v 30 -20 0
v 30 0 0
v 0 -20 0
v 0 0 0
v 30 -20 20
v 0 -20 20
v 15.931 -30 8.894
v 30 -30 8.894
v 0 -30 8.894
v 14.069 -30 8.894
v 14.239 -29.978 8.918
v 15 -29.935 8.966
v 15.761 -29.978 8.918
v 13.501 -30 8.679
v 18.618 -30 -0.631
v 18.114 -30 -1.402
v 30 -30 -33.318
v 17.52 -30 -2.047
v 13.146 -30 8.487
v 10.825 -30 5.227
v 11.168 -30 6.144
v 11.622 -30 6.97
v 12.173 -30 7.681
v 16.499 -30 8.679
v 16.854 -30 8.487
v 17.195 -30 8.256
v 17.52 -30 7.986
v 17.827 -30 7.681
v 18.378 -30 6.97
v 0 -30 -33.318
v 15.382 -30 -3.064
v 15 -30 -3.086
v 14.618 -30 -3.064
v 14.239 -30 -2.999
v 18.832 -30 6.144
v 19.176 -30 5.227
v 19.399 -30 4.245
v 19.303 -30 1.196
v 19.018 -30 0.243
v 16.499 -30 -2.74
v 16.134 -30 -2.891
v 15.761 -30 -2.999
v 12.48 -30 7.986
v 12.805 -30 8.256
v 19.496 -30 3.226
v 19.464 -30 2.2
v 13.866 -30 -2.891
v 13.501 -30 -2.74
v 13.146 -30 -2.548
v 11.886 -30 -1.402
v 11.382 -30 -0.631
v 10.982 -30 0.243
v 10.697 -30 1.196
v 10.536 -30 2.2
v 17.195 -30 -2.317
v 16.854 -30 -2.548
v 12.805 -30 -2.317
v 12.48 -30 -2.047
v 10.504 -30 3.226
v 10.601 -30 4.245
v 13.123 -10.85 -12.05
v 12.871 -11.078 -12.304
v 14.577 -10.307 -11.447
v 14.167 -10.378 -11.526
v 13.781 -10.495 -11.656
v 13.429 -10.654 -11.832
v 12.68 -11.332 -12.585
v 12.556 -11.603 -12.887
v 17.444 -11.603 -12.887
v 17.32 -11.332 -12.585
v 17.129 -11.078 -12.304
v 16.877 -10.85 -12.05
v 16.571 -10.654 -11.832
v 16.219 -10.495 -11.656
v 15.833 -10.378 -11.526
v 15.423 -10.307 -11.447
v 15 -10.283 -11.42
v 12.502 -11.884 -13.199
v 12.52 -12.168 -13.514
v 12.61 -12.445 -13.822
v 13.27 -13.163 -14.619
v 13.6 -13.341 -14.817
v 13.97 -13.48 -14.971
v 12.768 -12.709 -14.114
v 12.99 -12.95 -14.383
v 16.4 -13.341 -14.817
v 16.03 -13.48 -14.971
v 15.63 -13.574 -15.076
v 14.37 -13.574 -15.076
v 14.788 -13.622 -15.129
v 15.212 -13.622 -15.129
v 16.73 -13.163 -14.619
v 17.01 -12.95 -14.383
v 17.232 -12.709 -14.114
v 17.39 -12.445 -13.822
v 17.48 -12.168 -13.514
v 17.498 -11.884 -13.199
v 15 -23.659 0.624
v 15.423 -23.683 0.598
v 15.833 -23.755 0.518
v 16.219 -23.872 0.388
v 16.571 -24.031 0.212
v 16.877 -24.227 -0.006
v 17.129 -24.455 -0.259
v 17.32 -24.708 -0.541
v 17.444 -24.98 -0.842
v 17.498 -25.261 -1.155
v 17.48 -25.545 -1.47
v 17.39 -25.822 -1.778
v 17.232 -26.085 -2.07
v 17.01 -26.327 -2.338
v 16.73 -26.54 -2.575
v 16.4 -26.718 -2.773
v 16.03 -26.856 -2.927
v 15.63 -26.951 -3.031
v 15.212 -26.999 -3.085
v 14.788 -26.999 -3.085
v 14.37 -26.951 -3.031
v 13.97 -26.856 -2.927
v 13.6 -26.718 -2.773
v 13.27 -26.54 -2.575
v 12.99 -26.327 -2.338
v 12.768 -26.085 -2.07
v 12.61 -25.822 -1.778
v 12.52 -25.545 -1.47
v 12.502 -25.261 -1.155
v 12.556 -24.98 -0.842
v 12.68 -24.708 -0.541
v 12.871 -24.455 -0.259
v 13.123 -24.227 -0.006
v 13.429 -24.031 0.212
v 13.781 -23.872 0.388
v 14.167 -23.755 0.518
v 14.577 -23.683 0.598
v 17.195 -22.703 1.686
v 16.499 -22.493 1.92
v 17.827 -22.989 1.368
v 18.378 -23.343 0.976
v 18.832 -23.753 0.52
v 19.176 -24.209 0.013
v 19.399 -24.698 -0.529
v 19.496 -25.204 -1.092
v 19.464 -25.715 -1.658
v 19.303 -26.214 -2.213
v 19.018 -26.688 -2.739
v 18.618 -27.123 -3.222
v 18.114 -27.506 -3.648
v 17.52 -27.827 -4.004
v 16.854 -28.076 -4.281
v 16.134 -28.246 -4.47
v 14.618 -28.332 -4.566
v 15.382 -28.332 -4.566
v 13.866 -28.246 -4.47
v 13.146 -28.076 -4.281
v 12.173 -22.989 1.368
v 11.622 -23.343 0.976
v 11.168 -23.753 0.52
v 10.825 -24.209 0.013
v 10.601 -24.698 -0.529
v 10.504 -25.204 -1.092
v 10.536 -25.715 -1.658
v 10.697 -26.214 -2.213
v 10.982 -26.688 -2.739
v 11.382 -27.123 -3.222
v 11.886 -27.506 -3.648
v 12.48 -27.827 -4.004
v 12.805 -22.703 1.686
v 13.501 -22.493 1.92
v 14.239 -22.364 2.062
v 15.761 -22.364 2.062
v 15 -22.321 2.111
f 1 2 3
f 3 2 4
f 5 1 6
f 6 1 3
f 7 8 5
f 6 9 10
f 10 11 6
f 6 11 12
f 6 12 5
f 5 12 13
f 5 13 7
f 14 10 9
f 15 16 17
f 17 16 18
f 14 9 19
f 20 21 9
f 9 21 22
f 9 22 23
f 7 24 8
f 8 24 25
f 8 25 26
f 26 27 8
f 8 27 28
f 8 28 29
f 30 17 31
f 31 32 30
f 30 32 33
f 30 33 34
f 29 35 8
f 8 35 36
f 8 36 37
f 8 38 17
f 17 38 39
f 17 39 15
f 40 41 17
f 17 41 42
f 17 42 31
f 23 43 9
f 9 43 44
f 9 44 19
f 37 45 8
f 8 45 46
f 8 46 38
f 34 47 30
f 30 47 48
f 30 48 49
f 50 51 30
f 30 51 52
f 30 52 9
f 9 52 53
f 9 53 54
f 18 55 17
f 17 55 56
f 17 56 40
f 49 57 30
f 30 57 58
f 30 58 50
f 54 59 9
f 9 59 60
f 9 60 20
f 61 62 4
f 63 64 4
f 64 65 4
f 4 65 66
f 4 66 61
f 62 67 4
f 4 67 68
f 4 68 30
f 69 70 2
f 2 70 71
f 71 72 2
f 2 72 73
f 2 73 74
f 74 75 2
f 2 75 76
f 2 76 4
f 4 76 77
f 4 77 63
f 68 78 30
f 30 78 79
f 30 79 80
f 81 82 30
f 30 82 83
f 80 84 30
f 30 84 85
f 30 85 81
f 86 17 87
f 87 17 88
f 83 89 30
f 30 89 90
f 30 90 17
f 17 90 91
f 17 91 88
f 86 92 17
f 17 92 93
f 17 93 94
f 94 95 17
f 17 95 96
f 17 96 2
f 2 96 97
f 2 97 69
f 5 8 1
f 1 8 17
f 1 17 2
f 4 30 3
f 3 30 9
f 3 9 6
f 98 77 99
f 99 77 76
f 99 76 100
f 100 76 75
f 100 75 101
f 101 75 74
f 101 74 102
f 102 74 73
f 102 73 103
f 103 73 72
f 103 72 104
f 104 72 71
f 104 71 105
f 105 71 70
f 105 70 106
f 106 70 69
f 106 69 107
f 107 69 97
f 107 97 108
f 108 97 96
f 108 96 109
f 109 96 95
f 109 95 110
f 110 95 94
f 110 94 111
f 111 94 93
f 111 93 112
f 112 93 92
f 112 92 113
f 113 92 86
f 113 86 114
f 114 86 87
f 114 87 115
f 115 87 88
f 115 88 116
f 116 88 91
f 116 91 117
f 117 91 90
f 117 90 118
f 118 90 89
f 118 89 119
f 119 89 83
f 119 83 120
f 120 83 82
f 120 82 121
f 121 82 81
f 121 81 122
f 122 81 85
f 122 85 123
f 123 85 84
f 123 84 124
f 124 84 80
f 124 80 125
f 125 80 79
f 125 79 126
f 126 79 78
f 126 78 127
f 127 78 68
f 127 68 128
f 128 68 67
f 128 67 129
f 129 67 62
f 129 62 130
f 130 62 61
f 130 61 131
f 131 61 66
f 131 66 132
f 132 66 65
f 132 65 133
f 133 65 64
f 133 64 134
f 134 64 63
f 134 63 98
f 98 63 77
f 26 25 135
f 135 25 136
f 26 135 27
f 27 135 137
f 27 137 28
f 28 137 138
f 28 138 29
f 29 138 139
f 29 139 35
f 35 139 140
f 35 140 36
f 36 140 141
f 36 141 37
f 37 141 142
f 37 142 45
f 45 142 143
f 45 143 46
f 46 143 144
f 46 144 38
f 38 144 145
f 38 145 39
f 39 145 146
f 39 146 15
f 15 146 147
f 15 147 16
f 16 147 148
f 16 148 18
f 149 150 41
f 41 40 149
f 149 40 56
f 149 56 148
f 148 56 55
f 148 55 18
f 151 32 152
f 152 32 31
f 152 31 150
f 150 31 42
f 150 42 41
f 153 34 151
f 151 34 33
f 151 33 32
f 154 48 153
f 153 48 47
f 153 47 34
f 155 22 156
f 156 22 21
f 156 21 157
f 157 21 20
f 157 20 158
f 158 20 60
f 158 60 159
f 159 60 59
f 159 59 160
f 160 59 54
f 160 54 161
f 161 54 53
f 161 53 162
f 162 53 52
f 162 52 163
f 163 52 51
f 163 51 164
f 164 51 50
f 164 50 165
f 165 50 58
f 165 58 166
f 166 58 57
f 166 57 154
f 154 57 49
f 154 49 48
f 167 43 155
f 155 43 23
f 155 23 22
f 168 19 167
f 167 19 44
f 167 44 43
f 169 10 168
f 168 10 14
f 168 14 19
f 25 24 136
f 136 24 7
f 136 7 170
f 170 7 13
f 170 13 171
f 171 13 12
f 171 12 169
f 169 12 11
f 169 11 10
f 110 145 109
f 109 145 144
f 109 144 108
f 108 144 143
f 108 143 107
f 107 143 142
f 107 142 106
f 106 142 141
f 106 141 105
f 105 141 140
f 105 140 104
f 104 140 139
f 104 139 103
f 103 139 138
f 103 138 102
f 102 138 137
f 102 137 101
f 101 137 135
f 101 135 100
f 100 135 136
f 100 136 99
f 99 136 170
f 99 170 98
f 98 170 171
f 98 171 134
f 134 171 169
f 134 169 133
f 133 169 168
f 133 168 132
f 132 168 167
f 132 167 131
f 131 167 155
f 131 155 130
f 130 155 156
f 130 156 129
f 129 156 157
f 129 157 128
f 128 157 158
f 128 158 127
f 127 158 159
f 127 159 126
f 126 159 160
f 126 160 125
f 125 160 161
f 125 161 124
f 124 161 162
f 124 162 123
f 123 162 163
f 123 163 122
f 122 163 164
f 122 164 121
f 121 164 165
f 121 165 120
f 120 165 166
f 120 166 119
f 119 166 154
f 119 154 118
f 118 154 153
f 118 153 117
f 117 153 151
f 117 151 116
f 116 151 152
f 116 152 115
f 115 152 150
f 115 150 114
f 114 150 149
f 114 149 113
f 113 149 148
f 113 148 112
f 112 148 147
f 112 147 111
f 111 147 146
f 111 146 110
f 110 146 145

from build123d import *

# Parameters (mm, degrees)
BOSS_EXTRU_1_DEPTH      = 30
ESQUISSE2_R             = 2.5
ENL_V_MAT_EXTRU_1_DEPTH = 54.945473789
ESQUISSE4_R             = 4.5
ENL_V_MAT_EXTRU_2_DEPTH = 57.869272391


with BuildPart() as part:
    # Esquisse1 → Boss.-Extru.1 (new body)
    with BuildSketch(Plane(origin=(0, 0, 0), x_dir=(0, 0, -1), z_dir=(1, 0, 0))):
        Polygon((0, 0), (33.318375445, -30), (-8.893874852, -30), (-20, -20), (0, -20), align=None)
    extrude(amount=BOSS_EXTRU_1_DEPTH)

    # Esquisse2 → Enlèv. mat.-Extru.1 (cut, through all)
    with BuildSketch(Plane(origin=(0, 0, 0), x_dir=(1, 0, 0), z_dir=(0, 0.7431448254773982, -0.6691306063588538))):
        with Locations(Location((15, 17.867207619, 0), (0, 0, 270))):
            Circle(ESQUISSE2_R)
    extrude(amount=-ENL_V_MAT_EXTRU_1_DEPTH, mode=Mode.SUBTRACT)

    # Esquisse4 → Enlèv. mat.-Extru.2 (cut, through all)
    with BuildSketch(Plane(origin=(0, -13.376606859, 12.044350914), x_dir=(1, 0, 0), z_dir=(0, 0.7431448254773982, -0.6691306063588538))):
        with Locations(Location((15, 17.867207619, 0), (0, 0, 270))):
            Circle(ESQUISSE4_R)
    extrude(amount=-ENL_V_MAT_EXTRU_2_DEPTH, mode=Mode.SUBTRACT)


solid = part.part
